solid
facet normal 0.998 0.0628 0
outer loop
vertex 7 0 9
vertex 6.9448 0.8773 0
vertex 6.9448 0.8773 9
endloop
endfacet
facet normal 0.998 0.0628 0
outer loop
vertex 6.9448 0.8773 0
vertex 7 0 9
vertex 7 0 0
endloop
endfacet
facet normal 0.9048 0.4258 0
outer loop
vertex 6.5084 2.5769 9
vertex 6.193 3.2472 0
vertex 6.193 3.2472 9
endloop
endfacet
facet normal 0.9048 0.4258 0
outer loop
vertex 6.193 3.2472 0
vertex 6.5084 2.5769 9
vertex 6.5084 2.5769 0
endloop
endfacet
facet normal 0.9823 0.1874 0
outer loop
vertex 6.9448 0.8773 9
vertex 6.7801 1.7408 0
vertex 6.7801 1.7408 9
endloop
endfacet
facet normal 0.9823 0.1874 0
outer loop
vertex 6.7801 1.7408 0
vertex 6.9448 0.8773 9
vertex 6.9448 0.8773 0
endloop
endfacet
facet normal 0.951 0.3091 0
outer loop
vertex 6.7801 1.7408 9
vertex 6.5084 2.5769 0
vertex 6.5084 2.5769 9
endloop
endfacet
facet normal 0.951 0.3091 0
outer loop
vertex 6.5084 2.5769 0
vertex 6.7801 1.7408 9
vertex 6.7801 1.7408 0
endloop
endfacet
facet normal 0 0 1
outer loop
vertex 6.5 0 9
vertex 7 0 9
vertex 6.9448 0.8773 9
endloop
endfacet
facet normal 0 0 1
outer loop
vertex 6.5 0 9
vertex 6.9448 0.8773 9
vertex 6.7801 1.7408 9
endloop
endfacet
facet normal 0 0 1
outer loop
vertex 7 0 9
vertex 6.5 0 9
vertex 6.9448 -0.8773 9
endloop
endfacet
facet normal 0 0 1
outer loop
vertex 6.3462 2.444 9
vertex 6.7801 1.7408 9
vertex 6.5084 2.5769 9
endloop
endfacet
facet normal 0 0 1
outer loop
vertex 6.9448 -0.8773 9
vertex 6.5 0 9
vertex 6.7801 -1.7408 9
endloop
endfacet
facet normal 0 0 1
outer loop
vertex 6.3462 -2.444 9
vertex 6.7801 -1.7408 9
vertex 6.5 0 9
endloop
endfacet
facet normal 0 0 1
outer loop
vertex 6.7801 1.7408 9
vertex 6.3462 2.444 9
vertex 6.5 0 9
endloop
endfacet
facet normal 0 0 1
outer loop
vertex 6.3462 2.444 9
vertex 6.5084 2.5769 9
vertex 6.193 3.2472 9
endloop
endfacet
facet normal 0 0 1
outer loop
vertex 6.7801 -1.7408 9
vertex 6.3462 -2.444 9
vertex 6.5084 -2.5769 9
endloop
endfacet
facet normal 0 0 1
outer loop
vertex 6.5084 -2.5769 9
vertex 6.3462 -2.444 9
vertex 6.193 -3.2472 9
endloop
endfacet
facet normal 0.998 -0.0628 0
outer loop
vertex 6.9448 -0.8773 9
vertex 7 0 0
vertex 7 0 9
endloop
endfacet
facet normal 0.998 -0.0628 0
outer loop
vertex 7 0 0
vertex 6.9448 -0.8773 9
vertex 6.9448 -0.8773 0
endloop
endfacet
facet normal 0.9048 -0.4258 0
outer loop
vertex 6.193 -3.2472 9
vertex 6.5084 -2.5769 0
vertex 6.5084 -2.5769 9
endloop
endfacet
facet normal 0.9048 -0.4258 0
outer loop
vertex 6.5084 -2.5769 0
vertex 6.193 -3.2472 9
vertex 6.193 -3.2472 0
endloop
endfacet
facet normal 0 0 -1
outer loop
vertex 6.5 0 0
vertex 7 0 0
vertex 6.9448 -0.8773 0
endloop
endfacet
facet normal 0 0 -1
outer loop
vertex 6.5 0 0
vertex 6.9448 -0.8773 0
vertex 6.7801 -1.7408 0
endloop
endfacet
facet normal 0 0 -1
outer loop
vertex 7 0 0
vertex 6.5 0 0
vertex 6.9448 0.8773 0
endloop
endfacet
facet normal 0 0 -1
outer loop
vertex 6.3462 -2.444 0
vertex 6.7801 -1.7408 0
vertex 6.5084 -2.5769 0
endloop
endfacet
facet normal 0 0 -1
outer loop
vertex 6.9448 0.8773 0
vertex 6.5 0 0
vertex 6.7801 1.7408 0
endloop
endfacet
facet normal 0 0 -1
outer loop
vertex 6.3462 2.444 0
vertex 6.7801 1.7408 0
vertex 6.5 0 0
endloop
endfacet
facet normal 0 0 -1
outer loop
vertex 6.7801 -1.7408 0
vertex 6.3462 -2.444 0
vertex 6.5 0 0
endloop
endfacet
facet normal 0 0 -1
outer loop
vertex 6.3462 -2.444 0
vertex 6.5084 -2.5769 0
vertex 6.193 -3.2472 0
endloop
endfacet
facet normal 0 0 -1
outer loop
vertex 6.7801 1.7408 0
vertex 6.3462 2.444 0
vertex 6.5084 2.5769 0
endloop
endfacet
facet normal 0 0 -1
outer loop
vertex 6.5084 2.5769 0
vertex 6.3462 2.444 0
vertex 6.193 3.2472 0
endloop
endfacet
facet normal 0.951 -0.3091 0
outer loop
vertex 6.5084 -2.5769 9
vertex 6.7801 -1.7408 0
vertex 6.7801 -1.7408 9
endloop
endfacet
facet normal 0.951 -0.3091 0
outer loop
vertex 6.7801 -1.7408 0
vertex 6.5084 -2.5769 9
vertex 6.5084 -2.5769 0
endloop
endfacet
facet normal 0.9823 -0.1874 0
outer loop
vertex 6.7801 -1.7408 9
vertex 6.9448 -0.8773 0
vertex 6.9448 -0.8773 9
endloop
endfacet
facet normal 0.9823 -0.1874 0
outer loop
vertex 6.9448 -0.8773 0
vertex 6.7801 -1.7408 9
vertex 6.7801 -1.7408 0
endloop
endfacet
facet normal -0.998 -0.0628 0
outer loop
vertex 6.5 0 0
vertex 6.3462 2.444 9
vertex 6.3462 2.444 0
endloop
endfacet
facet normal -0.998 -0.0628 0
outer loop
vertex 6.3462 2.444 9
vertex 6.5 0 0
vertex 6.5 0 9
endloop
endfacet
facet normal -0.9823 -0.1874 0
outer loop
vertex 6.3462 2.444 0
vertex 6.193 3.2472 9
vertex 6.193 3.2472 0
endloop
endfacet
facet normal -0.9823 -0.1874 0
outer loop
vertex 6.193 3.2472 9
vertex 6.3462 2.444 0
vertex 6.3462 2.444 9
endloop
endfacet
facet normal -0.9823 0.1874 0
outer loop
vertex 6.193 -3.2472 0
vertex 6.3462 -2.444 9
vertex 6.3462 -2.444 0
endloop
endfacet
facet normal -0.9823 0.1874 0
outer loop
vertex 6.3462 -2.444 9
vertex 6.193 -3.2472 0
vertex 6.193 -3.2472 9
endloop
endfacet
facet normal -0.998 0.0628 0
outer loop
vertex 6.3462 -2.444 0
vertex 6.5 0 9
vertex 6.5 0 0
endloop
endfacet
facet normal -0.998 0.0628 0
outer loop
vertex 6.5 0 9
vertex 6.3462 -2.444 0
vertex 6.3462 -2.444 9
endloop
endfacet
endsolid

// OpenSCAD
$fn = 50;


difference() {
	union() {
		cylinder(h = 9, r = 7.0000000000);
		translate(v = [-16.0000000000, 0, 0]) {
			cylinder(h = 9, r = 7.0000000000);
		}
	}
	union() {
		cylinder(h = 9, r = 3.2500000000);
		cylinder(h = 9, r = 1.8000000000);
		cylinder(h = 9, r = 1.8000000000);
		cylinder(h = 9, r = 1.8000000000);
		translate(v = [-20.5000000000, 0, 0]) {
			hull() {
				translate(v = [-3.7500000000, 0.0000000000, 0]) {
					cylinder(h = 9, r = 10.5000000000);
				}
				translate(v = [3.7500000000, 0.0000000000, 0]) {
					cylinder(h = 9, r = 10.5000000000);
				}
				translate(v = [-3.7500000000, -0.0000000000, 0]) {
					cylinder(h = 9, r = 10.5000000000);
				}
				translate(v = [3.7500000000, -0.0000000000, 0]) {
					cylinder(h = 9, r = 10.5000000000);
				}
			}
		}
		translate(v = [-13.0000000000, 0, 0.0000000000]) {
			cylinder(h = 9, r = 19.5000000000);
		}
	}
}
